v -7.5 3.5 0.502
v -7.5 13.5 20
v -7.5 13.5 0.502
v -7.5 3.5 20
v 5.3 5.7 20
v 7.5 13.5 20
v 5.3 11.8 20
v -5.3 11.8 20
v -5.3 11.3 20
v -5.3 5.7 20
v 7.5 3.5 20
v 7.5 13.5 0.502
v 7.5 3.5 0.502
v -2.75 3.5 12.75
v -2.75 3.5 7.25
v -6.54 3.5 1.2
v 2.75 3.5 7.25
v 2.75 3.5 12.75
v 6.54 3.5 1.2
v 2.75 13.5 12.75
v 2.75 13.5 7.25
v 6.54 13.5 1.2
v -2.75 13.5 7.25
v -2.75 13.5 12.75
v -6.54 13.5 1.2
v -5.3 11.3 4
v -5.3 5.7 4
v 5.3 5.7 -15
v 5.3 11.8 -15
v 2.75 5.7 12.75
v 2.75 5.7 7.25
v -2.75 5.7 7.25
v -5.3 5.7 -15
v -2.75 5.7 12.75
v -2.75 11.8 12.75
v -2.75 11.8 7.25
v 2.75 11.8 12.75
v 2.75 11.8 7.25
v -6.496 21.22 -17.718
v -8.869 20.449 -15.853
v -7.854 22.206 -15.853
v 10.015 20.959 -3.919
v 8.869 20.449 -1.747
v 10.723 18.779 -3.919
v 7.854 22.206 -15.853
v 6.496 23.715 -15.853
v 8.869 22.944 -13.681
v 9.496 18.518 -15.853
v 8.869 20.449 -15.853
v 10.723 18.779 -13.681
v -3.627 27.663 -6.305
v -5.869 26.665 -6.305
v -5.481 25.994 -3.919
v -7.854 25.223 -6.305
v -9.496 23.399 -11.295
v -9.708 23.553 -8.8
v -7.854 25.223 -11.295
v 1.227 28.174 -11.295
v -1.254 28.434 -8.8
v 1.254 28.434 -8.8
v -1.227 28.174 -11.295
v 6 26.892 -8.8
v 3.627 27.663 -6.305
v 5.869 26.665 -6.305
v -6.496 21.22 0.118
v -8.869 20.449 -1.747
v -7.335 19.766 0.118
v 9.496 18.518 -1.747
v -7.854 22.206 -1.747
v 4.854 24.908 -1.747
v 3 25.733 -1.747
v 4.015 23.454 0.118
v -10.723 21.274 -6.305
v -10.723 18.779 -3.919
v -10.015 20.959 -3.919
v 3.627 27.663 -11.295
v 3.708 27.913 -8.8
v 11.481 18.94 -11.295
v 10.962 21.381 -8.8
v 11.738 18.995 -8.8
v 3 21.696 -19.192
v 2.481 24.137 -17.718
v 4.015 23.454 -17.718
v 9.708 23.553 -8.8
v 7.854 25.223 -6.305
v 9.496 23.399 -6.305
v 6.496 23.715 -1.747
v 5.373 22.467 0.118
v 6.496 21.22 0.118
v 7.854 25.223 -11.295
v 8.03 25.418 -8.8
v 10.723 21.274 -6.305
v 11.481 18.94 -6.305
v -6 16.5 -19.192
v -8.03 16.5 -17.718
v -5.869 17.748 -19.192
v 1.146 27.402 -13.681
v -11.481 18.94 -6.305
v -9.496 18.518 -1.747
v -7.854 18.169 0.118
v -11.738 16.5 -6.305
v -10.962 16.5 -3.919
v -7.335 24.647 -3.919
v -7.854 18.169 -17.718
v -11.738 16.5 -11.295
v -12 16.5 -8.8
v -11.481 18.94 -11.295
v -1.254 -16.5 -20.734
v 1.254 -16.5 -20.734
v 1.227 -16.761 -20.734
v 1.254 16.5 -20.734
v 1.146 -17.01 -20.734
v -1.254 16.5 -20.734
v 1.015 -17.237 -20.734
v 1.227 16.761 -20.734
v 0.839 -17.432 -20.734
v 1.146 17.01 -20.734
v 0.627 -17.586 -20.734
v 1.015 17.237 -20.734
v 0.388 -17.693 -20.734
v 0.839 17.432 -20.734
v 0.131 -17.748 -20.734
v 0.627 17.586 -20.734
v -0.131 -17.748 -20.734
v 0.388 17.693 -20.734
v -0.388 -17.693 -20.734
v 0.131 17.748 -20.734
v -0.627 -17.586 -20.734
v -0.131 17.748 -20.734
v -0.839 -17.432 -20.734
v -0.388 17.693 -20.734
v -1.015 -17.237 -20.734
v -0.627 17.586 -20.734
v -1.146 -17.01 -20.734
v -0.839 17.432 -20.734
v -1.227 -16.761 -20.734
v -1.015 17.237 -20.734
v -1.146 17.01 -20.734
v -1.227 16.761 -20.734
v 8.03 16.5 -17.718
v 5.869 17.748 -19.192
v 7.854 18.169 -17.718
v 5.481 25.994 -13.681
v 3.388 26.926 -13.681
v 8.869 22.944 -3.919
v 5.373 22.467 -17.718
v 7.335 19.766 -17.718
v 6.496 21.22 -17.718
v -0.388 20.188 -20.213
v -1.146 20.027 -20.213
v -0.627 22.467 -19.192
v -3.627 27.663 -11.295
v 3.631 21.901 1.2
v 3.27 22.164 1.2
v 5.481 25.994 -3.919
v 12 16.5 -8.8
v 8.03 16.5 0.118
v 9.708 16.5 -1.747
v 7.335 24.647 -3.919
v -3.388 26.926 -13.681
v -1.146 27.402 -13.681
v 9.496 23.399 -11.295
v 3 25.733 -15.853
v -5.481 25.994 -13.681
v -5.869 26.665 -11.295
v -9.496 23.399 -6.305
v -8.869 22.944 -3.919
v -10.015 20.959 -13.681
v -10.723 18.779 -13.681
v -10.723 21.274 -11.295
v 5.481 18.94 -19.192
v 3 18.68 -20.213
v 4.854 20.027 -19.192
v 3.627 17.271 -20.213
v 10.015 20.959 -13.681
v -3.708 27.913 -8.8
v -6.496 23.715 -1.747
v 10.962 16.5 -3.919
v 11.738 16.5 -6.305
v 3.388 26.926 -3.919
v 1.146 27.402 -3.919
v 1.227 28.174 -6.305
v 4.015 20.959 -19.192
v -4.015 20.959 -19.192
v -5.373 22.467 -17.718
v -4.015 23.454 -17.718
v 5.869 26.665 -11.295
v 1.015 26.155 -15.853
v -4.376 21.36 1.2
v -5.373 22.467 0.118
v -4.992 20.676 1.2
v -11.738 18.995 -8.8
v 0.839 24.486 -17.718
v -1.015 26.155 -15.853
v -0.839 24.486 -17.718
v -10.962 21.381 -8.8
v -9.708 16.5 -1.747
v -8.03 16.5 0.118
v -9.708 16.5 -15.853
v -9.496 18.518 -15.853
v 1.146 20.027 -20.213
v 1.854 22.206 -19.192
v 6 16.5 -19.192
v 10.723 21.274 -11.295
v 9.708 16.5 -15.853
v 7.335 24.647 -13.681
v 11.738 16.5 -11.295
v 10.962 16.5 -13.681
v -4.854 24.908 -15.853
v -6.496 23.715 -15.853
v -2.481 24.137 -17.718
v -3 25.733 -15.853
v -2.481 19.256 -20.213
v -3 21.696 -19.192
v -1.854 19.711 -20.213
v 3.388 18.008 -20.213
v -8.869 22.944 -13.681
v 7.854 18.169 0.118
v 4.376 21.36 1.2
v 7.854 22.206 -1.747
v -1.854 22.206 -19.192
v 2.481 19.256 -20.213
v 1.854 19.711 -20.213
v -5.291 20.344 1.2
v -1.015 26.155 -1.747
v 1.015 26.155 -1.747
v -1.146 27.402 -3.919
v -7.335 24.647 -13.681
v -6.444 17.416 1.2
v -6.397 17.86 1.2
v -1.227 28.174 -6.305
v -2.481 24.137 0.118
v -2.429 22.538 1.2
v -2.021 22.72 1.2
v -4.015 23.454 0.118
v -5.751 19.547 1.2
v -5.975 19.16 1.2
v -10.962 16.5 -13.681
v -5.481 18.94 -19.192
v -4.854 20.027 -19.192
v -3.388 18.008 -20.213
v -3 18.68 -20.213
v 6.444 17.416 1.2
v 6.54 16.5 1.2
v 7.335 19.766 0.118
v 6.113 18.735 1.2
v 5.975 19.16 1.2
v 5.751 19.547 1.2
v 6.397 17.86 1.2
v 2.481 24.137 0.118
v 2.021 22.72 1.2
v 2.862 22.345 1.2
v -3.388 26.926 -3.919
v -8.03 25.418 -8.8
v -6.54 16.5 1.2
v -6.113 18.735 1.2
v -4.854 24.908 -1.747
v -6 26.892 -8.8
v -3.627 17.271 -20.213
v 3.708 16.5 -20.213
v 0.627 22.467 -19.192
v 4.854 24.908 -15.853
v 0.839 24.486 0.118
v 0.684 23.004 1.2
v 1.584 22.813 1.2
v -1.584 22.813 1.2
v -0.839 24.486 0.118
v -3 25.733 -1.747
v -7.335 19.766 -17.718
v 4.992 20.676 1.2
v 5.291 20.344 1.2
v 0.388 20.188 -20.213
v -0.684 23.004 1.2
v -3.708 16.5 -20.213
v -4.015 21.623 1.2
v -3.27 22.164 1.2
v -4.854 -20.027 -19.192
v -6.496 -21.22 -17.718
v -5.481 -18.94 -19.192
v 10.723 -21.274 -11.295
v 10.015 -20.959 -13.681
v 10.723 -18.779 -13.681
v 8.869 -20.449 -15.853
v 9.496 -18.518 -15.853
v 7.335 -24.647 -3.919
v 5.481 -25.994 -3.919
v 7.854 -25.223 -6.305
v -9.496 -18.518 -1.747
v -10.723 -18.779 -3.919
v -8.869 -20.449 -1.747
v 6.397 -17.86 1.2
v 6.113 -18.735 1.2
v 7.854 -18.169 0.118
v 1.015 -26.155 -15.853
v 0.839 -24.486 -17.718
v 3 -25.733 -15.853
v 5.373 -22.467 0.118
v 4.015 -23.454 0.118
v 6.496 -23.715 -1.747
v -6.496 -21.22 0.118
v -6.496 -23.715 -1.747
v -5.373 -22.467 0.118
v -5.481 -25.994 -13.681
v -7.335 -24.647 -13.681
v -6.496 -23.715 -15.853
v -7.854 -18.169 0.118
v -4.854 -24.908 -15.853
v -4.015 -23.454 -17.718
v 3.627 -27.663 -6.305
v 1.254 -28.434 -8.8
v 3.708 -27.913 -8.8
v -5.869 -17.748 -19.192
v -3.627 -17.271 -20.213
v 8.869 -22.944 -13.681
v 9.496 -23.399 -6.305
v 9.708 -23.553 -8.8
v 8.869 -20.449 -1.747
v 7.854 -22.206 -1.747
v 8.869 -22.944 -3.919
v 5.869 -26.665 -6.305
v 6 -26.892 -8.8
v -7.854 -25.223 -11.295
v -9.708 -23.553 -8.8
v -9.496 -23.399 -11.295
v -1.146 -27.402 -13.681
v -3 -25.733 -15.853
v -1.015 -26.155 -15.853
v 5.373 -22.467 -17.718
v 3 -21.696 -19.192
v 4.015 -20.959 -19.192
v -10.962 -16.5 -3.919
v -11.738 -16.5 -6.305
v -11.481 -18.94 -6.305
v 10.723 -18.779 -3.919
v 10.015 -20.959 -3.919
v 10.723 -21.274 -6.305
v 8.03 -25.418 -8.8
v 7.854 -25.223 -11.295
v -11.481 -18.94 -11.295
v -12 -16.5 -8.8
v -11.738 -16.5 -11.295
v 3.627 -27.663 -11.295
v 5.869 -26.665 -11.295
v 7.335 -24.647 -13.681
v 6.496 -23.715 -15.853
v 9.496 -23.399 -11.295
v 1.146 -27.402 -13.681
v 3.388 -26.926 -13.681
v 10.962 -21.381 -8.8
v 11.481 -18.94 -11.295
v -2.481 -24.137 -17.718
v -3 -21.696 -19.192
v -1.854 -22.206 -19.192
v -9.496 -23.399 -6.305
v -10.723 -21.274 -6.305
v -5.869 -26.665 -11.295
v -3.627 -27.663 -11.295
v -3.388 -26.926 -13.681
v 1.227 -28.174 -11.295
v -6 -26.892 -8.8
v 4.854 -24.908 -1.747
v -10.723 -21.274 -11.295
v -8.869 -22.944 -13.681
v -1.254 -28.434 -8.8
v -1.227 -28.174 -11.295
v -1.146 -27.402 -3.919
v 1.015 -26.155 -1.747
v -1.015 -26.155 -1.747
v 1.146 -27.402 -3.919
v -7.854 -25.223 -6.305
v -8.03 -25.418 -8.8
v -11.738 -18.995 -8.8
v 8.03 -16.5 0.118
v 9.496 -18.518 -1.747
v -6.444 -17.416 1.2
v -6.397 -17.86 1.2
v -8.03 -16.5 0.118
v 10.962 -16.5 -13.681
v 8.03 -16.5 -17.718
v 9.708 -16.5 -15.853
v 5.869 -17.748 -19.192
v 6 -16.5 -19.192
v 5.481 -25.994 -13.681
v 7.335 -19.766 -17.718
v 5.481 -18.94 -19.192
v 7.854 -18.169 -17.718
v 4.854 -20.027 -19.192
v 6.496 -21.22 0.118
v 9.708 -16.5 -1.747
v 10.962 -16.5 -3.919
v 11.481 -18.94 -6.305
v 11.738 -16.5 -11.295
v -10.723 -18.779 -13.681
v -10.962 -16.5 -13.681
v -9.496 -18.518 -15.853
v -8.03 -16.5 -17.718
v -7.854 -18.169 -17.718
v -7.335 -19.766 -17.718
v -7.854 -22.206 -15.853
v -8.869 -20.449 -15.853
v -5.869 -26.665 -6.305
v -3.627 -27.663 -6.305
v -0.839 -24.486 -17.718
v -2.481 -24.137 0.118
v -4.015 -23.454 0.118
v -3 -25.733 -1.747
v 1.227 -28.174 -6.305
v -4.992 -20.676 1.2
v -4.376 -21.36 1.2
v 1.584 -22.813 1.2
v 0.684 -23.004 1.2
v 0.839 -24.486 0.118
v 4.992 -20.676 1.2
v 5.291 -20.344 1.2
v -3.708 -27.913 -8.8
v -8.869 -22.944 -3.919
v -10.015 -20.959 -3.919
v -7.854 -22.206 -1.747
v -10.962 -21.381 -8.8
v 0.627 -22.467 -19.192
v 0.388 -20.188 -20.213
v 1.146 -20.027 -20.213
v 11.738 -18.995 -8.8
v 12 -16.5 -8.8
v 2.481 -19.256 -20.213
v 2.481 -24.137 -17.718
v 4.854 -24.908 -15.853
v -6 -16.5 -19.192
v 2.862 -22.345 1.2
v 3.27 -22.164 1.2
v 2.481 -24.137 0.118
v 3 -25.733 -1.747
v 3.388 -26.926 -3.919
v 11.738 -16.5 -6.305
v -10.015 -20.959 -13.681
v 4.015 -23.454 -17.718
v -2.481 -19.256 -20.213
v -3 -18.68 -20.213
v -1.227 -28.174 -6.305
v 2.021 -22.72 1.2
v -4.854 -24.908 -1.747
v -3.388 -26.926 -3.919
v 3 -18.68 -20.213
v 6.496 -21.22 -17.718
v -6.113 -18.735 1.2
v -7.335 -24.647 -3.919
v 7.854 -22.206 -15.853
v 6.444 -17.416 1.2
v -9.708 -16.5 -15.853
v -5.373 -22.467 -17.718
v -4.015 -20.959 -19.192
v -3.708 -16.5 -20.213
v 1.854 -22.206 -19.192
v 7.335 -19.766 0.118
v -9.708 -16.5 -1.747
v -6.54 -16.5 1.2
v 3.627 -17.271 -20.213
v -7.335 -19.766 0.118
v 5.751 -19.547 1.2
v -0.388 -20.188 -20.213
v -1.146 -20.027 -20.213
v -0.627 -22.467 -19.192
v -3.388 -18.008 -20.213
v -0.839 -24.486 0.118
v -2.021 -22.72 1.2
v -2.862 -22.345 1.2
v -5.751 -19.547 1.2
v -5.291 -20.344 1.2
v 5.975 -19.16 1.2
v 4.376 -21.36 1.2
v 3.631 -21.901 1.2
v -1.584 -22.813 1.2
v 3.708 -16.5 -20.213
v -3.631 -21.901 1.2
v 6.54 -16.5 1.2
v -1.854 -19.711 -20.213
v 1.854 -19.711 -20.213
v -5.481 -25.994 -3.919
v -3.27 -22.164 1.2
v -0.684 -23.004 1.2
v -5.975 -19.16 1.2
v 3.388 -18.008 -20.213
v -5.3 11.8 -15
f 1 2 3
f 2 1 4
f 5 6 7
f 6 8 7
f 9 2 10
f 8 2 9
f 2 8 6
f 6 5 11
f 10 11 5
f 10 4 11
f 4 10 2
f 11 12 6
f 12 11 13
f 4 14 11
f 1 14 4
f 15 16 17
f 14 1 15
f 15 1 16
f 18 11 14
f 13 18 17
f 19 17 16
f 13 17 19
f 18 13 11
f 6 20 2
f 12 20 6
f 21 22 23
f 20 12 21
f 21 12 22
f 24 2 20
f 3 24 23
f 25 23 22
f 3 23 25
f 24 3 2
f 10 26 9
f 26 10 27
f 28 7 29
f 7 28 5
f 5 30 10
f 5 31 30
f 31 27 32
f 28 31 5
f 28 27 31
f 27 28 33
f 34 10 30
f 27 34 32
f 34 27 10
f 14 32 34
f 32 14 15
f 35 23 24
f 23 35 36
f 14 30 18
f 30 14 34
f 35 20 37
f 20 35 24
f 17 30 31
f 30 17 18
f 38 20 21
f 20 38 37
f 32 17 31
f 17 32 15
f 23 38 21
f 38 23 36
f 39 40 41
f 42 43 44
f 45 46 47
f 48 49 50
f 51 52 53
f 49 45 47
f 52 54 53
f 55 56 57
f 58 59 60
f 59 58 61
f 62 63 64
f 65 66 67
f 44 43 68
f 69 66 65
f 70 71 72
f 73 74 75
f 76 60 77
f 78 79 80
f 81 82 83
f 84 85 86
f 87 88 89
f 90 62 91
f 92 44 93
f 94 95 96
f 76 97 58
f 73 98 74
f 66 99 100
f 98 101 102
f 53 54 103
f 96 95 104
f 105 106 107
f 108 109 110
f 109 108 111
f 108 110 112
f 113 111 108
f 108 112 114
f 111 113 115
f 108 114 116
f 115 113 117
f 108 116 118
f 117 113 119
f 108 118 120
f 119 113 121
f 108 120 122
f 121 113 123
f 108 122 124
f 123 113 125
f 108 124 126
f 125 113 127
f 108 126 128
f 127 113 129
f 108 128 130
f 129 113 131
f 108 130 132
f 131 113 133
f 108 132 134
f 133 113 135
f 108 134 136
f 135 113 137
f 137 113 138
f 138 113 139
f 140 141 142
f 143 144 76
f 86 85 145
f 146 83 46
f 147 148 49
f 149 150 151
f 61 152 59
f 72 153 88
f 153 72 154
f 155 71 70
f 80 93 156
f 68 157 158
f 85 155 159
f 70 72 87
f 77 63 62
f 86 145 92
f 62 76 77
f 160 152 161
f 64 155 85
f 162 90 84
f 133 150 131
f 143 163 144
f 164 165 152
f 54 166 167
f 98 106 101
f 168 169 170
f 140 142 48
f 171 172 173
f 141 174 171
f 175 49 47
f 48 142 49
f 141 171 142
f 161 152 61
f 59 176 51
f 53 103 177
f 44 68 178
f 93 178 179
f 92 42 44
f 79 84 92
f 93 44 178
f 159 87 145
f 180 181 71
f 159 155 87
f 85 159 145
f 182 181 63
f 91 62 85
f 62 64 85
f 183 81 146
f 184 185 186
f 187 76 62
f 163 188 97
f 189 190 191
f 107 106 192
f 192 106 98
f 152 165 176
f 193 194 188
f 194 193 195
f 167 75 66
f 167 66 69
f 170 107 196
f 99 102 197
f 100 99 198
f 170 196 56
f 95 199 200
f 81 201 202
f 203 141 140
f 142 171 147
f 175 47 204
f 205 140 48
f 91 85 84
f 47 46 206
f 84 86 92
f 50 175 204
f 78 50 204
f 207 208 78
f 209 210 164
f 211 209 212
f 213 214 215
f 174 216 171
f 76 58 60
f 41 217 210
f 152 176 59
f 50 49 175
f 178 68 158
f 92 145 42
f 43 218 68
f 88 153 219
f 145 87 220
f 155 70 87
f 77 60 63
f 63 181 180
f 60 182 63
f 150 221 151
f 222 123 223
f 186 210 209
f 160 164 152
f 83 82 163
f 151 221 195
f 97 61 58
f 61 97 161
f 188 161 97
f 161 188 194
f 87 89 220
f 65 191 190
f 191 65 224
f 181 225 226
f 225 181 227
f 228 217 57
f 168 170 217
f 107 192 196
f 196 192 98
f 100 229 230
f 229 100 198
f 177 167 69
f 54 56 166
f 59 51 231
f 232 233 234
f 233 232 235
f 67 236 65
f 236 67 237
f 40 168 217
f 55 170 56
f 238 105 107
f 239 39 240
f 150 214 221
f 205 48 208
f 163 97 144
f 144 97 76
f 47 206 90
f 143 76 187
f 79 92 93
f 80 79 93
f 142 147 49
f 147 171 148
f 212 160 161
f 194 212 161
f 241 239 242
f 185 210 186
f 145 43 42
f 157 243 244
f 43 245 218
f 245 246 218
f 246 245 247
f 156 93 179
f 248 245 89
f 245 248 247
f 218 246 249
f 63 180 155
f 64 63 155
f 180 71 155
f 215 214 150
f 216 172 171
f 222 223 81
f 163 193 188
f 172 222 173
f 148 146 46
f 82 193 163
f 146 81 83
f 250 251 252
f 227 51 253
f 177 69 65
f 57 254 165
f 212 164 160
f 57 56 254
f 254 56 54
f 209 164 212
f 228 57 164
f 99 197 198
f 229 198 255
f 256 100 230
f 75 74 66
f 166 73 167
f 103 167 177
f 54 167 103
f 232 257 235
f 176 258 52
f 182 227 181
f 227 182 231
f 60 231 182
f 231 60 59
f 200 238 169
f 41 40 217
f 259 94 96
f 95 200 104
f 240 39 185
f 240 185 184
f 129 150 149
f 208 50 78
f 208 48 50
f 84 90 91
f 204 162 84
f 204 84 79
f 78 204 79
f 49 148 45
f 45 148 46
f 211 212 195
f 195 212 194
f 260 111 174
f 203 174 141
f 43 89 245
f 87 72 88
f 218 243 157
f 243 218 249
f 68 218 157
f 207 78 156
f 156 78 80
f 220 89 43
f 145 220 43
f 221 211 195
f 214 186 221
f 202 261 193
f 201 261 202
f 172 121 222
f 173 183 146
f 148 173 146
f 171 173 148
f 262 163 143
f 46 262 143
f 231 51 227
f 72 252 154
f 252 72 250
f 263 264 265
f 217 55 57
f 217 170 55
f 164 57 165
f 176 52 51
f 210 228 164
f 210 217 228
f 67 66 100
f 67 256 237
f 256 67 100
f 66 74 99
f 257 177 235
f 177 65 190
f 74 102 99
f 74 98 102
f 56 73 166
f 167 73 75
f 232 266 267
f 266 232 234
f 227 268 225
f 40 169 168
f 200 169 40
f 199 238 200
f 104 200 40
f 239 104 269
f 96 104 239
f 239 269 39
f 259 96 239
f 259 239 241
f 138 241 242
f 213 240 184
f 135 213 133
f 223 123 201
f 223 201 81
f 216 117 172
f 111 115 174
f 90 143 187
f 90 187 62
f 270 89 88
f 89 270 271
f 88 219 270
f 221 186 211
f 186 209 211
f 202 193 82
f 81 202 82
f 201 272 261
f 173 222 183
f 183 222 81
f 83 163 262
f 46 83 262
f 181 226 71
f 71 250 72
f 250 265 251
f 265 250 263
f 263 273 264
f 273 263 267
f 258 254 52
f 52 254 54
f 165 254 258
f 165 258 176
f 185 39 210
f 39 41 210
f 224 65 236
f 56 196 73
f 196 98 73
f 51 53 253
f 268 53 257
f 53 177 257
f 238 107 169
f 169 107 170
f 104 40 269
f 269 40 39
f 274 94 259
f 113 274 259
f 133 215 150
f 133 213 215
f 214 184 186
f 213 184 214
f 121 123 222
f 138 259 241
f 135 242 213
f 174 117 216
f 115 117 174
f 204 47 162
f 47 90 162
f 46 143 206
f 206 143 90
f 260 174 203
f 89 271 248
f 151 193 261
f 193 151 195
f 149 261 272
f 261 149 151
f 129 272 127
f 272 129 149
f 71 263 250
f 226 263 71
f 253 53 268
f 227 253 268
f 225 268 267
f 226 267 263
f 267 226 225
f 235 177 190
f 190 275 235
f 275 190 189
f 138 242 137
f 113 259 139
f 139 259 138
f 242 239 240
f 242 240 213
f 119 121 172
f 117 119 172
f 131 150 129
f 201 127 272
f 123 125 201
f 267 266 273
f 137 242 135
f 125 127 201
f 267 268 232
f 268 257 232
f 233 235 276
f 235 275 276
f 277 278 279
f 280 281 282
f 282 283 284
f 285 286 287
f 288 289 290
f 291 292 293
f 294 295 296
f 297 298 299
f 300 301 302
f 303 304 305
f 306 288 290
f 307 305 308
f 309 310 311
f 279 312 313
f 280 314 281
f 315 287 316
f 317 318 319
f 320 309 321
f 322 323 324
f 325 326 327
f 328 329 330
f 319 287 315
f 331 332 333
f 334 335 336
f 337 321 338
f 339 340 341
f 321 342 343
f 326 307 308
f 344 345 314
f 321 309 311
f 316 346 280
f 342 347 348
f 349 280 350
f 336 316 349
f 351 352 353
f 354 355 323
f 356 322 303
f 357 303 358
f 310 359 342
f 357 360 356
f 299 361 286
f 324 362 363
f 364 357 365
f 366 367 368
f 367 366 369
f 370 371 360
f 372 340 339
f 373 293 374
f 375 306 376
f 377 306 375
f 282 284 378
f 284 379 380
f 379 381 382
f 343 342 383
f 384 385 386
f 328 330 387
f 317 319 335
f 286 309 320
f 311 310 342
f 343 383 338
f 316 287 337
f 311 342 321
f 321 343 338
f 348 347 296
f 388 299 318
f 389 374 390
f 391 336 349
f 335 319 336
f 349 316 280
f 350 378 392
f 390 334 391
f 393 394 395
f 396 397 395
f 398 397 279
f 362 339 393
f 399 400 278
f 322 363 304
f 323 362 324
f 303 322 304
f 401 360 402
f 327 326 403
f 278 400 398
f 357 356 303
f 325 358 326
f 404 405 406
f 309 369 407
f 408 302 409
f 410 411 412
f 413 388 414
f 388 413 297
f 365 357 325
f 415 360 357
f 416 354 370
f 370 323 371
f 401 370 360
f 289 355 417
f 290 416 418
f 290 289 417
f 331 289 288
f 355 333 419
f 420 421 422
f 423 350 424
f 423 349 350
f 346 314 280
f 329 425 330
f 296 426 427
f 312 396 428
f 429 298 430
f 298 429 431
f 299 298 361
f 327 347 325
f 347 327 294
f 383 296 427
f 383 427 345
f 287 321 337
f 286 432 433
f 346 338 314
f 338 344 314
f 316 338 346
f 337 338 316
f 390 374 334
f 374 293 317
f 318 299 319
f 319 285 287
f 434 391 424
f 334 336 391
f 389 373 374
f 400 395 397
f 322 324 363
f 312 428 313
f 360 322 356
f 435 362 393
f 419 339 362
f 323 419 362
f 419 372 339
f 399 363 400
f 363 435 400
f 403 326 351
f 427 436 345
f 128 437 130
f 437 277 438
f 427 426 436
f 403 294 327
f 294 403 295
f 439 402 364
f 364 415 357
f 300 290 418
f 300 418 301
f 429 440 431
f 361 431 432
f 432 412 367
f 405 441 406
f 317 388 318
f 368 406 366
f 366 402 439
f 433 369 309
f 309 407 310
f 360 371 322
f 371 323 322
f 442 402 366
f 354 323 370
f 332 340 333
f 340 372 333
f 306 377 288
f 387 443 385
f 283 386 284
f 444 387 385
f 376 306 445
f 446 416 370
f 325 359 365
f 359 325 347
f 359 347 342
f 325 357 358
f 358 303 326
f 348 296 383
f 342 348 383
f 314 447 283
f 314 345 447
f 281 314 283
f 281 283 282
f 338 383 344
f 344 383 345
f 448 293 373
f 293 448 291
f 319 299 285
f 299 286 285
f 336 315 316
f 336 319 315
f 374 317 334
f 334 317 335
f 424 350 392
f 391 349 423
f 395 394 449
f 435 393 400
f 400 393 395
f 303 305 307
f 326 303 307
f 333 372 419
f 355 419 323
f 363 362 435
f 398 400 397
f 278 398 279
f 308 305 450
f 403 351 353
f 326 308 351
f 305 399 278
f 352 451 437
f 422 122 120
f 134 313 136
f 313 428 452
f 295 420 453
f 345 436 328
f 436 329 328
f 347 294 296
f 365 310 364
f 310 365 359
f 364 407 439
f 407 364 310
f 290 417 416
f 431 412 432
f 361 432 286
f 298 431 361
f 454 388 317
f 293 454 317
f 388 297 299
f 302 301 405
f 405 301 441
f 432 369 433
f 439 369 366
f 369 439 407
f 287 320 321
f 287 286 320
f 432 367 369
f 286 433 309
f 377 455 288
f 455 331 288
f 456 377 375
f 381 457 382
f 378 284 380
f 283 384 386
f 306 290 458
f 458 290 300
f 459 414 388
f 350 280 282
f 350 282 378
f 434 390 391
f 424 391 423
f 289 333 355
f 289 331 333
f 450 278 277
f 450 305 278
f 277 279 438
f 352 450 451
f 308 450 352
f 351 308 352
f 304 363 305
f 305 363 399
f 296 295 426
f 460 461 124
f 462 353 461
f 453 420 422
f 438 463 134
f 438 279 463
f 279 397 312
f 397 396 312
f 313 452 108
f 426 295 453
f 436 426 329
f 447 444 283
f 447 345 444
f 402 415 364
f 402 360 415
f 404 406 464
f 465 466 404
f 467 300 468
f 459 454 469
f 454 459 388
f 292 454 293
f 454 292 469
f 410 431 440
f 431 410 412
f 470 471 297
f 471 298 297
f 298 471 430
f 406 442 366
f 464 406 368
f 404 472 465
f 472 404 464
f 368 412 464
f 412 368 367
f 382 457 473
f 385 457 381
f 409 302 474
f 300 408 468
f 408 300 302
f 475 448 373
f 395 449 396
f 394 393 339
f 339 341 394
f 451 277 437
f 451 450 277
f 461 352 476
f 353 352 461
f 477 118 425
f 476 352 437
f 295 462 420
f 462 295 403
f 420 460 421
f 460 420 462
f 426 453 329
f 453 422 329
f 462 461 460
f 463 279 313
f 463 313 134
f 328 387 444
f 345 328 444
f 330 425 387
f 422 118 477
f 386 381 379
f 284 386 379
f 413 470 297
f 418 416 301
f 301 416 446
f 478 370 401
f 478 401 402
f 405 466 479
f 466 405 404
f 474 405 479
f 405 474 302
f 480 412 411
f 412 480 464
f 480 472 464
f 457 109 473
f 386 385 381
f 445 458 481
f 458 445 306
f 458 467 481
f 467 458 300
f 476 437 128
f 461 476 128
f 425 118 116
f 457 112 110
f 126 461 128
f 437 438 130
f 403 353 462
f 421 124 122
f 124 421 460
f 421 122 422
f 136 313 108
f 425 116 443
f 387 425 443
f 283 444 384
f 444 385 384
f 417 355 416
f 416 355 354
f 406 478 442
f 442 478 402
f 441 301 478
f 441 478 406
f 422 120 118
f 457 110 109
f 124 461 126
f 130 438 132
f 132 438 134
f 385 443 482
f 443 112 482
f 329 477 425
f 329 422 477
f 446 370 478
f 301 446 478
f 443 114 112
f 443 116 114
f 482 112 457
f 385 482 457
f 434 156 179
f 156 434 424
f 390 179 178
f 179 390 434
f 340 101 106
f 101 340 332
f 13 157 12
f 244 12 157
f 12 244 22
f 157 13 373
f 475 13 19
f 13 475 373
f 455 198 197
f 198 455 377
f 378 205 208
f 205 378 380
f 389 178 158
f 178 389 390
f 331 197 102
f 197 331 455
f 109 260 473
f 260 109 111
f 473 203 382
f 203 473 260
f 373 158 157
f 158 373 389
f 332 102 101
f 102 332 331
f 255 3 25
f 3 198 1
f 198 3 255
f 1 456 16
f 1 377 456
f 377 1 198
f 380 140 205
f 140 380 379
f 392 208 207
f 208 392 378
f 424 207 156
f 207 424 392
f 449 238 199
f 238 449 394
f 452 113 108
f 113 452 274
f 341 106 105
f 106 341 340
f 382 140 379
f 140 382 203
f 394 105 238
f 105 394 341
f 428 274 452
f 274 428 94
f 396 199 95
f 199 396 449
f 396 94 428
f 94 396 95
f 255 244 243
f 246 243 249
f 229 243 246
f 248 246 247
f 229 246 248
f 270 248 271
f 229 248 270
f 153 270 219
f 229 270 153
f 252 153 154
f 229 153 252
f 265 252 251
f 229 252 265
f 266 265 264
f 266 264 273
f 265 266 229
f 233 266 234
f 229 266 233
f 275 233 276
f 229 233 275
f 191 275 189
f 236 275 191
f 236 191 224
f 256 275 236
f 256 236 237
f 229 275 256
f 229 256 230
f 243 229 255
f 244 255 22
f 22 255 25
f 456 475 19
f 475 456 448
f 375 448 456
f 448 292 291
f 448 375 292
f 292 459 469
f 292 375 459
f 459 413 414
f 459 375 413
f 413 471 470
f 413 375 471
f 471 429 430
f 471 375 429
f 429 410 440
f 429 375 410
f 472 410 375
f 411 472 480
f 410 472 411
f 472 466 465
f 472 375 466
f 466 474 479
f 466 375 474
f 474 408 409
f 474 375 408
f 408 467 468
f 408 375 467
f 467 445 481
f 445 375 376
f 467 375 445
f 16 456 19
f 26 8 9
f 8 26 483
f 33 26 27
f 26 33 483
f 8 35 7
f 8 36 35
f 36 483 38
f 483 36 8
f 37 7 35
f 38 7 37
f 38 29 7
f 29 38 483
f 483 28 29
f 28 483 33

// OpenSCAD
insert_height=15.00;
insert_width=10;
insert_length=20.00;

insert_center_hole_length_offset=10.0;
insert_center_hole_width=5.5;

insert_middle_space_thickness = 1.5;

insert_wall_thickness=2.2;
insert_wall_height=16.0;

handle_depth=24;
handle_width=57;
handle_position_on_shorter_end=25;

handle_middle_cylinder_height=handle_width-handle_depth;

module draw_insert() {
    difference () {    
        difference() {
            cube([insert_height, insert_width, insert_length]);
            translate([insert_wall_thickness, insert_width/2-(insert_width-insert_wall_thickness*2)/2, insert_length-insert_wall_height]) {
               cube([insert_height-insert_wall_thickness*2, insert_width-insert_wall_thickness*2, insert_wall_height+.01]);
            }
        }
        translate([insert_height/2-insert_center_hole_width/2, -insert_center_hole_width*10, insert_length-insert_center_hole_length_offset-insert_center_hole_width/2]) {
               cube([insert_center_hole_width, insert_center_hole_width*20, insert_center_hole_width]);
        }
    }
}


module draw_handle() {
    //minkowski() {
        difference () {
    union() {
        translate([0, handle_middle_cylinder_height/2, 0]) {
                sphere(handle_depth/2);
        }
        translate([0, -handle_middle_cylinder_height/2, 0]) {
                sphere(handle_depth/2);
        }
         translate([0, handle_middle_cylinder_height/2, 0]) {
    rotate([90, 0, 0]) {
        cylinder(handle_middle_cylinder_height, handle_depth/2, handle_depth/2);
        }
    }
    }        translate([-handle_depth, -500, 10]) {

          cube([handle_depth*2, 1000, handle_depth]);
    }
}

}




module draw_assembly() {
    translate([-insert_height/2, handle_width/2-handle_position_on_shorter_end, 0]) {
        draw_insert();
    }        
    translate([0, 0, -handle_depth/2+insert_wall_thickness+1]) {
        draw_handle();
    }
}


//this final difference was to quick-fix the originally too shallow insert
difference () {
    draw_assembly();
    translate([-(insert_height-2*insert_wall_thickness)/2, handle_width/2-handle_position_on_shorter_end+insert_wall_thickness, -insert_length*0.75]) {
          cube([insert_height-2*insert_wall_thickness, insert_width/2+insert_wall_thickness/2, insert_length*4]);
    }
}
